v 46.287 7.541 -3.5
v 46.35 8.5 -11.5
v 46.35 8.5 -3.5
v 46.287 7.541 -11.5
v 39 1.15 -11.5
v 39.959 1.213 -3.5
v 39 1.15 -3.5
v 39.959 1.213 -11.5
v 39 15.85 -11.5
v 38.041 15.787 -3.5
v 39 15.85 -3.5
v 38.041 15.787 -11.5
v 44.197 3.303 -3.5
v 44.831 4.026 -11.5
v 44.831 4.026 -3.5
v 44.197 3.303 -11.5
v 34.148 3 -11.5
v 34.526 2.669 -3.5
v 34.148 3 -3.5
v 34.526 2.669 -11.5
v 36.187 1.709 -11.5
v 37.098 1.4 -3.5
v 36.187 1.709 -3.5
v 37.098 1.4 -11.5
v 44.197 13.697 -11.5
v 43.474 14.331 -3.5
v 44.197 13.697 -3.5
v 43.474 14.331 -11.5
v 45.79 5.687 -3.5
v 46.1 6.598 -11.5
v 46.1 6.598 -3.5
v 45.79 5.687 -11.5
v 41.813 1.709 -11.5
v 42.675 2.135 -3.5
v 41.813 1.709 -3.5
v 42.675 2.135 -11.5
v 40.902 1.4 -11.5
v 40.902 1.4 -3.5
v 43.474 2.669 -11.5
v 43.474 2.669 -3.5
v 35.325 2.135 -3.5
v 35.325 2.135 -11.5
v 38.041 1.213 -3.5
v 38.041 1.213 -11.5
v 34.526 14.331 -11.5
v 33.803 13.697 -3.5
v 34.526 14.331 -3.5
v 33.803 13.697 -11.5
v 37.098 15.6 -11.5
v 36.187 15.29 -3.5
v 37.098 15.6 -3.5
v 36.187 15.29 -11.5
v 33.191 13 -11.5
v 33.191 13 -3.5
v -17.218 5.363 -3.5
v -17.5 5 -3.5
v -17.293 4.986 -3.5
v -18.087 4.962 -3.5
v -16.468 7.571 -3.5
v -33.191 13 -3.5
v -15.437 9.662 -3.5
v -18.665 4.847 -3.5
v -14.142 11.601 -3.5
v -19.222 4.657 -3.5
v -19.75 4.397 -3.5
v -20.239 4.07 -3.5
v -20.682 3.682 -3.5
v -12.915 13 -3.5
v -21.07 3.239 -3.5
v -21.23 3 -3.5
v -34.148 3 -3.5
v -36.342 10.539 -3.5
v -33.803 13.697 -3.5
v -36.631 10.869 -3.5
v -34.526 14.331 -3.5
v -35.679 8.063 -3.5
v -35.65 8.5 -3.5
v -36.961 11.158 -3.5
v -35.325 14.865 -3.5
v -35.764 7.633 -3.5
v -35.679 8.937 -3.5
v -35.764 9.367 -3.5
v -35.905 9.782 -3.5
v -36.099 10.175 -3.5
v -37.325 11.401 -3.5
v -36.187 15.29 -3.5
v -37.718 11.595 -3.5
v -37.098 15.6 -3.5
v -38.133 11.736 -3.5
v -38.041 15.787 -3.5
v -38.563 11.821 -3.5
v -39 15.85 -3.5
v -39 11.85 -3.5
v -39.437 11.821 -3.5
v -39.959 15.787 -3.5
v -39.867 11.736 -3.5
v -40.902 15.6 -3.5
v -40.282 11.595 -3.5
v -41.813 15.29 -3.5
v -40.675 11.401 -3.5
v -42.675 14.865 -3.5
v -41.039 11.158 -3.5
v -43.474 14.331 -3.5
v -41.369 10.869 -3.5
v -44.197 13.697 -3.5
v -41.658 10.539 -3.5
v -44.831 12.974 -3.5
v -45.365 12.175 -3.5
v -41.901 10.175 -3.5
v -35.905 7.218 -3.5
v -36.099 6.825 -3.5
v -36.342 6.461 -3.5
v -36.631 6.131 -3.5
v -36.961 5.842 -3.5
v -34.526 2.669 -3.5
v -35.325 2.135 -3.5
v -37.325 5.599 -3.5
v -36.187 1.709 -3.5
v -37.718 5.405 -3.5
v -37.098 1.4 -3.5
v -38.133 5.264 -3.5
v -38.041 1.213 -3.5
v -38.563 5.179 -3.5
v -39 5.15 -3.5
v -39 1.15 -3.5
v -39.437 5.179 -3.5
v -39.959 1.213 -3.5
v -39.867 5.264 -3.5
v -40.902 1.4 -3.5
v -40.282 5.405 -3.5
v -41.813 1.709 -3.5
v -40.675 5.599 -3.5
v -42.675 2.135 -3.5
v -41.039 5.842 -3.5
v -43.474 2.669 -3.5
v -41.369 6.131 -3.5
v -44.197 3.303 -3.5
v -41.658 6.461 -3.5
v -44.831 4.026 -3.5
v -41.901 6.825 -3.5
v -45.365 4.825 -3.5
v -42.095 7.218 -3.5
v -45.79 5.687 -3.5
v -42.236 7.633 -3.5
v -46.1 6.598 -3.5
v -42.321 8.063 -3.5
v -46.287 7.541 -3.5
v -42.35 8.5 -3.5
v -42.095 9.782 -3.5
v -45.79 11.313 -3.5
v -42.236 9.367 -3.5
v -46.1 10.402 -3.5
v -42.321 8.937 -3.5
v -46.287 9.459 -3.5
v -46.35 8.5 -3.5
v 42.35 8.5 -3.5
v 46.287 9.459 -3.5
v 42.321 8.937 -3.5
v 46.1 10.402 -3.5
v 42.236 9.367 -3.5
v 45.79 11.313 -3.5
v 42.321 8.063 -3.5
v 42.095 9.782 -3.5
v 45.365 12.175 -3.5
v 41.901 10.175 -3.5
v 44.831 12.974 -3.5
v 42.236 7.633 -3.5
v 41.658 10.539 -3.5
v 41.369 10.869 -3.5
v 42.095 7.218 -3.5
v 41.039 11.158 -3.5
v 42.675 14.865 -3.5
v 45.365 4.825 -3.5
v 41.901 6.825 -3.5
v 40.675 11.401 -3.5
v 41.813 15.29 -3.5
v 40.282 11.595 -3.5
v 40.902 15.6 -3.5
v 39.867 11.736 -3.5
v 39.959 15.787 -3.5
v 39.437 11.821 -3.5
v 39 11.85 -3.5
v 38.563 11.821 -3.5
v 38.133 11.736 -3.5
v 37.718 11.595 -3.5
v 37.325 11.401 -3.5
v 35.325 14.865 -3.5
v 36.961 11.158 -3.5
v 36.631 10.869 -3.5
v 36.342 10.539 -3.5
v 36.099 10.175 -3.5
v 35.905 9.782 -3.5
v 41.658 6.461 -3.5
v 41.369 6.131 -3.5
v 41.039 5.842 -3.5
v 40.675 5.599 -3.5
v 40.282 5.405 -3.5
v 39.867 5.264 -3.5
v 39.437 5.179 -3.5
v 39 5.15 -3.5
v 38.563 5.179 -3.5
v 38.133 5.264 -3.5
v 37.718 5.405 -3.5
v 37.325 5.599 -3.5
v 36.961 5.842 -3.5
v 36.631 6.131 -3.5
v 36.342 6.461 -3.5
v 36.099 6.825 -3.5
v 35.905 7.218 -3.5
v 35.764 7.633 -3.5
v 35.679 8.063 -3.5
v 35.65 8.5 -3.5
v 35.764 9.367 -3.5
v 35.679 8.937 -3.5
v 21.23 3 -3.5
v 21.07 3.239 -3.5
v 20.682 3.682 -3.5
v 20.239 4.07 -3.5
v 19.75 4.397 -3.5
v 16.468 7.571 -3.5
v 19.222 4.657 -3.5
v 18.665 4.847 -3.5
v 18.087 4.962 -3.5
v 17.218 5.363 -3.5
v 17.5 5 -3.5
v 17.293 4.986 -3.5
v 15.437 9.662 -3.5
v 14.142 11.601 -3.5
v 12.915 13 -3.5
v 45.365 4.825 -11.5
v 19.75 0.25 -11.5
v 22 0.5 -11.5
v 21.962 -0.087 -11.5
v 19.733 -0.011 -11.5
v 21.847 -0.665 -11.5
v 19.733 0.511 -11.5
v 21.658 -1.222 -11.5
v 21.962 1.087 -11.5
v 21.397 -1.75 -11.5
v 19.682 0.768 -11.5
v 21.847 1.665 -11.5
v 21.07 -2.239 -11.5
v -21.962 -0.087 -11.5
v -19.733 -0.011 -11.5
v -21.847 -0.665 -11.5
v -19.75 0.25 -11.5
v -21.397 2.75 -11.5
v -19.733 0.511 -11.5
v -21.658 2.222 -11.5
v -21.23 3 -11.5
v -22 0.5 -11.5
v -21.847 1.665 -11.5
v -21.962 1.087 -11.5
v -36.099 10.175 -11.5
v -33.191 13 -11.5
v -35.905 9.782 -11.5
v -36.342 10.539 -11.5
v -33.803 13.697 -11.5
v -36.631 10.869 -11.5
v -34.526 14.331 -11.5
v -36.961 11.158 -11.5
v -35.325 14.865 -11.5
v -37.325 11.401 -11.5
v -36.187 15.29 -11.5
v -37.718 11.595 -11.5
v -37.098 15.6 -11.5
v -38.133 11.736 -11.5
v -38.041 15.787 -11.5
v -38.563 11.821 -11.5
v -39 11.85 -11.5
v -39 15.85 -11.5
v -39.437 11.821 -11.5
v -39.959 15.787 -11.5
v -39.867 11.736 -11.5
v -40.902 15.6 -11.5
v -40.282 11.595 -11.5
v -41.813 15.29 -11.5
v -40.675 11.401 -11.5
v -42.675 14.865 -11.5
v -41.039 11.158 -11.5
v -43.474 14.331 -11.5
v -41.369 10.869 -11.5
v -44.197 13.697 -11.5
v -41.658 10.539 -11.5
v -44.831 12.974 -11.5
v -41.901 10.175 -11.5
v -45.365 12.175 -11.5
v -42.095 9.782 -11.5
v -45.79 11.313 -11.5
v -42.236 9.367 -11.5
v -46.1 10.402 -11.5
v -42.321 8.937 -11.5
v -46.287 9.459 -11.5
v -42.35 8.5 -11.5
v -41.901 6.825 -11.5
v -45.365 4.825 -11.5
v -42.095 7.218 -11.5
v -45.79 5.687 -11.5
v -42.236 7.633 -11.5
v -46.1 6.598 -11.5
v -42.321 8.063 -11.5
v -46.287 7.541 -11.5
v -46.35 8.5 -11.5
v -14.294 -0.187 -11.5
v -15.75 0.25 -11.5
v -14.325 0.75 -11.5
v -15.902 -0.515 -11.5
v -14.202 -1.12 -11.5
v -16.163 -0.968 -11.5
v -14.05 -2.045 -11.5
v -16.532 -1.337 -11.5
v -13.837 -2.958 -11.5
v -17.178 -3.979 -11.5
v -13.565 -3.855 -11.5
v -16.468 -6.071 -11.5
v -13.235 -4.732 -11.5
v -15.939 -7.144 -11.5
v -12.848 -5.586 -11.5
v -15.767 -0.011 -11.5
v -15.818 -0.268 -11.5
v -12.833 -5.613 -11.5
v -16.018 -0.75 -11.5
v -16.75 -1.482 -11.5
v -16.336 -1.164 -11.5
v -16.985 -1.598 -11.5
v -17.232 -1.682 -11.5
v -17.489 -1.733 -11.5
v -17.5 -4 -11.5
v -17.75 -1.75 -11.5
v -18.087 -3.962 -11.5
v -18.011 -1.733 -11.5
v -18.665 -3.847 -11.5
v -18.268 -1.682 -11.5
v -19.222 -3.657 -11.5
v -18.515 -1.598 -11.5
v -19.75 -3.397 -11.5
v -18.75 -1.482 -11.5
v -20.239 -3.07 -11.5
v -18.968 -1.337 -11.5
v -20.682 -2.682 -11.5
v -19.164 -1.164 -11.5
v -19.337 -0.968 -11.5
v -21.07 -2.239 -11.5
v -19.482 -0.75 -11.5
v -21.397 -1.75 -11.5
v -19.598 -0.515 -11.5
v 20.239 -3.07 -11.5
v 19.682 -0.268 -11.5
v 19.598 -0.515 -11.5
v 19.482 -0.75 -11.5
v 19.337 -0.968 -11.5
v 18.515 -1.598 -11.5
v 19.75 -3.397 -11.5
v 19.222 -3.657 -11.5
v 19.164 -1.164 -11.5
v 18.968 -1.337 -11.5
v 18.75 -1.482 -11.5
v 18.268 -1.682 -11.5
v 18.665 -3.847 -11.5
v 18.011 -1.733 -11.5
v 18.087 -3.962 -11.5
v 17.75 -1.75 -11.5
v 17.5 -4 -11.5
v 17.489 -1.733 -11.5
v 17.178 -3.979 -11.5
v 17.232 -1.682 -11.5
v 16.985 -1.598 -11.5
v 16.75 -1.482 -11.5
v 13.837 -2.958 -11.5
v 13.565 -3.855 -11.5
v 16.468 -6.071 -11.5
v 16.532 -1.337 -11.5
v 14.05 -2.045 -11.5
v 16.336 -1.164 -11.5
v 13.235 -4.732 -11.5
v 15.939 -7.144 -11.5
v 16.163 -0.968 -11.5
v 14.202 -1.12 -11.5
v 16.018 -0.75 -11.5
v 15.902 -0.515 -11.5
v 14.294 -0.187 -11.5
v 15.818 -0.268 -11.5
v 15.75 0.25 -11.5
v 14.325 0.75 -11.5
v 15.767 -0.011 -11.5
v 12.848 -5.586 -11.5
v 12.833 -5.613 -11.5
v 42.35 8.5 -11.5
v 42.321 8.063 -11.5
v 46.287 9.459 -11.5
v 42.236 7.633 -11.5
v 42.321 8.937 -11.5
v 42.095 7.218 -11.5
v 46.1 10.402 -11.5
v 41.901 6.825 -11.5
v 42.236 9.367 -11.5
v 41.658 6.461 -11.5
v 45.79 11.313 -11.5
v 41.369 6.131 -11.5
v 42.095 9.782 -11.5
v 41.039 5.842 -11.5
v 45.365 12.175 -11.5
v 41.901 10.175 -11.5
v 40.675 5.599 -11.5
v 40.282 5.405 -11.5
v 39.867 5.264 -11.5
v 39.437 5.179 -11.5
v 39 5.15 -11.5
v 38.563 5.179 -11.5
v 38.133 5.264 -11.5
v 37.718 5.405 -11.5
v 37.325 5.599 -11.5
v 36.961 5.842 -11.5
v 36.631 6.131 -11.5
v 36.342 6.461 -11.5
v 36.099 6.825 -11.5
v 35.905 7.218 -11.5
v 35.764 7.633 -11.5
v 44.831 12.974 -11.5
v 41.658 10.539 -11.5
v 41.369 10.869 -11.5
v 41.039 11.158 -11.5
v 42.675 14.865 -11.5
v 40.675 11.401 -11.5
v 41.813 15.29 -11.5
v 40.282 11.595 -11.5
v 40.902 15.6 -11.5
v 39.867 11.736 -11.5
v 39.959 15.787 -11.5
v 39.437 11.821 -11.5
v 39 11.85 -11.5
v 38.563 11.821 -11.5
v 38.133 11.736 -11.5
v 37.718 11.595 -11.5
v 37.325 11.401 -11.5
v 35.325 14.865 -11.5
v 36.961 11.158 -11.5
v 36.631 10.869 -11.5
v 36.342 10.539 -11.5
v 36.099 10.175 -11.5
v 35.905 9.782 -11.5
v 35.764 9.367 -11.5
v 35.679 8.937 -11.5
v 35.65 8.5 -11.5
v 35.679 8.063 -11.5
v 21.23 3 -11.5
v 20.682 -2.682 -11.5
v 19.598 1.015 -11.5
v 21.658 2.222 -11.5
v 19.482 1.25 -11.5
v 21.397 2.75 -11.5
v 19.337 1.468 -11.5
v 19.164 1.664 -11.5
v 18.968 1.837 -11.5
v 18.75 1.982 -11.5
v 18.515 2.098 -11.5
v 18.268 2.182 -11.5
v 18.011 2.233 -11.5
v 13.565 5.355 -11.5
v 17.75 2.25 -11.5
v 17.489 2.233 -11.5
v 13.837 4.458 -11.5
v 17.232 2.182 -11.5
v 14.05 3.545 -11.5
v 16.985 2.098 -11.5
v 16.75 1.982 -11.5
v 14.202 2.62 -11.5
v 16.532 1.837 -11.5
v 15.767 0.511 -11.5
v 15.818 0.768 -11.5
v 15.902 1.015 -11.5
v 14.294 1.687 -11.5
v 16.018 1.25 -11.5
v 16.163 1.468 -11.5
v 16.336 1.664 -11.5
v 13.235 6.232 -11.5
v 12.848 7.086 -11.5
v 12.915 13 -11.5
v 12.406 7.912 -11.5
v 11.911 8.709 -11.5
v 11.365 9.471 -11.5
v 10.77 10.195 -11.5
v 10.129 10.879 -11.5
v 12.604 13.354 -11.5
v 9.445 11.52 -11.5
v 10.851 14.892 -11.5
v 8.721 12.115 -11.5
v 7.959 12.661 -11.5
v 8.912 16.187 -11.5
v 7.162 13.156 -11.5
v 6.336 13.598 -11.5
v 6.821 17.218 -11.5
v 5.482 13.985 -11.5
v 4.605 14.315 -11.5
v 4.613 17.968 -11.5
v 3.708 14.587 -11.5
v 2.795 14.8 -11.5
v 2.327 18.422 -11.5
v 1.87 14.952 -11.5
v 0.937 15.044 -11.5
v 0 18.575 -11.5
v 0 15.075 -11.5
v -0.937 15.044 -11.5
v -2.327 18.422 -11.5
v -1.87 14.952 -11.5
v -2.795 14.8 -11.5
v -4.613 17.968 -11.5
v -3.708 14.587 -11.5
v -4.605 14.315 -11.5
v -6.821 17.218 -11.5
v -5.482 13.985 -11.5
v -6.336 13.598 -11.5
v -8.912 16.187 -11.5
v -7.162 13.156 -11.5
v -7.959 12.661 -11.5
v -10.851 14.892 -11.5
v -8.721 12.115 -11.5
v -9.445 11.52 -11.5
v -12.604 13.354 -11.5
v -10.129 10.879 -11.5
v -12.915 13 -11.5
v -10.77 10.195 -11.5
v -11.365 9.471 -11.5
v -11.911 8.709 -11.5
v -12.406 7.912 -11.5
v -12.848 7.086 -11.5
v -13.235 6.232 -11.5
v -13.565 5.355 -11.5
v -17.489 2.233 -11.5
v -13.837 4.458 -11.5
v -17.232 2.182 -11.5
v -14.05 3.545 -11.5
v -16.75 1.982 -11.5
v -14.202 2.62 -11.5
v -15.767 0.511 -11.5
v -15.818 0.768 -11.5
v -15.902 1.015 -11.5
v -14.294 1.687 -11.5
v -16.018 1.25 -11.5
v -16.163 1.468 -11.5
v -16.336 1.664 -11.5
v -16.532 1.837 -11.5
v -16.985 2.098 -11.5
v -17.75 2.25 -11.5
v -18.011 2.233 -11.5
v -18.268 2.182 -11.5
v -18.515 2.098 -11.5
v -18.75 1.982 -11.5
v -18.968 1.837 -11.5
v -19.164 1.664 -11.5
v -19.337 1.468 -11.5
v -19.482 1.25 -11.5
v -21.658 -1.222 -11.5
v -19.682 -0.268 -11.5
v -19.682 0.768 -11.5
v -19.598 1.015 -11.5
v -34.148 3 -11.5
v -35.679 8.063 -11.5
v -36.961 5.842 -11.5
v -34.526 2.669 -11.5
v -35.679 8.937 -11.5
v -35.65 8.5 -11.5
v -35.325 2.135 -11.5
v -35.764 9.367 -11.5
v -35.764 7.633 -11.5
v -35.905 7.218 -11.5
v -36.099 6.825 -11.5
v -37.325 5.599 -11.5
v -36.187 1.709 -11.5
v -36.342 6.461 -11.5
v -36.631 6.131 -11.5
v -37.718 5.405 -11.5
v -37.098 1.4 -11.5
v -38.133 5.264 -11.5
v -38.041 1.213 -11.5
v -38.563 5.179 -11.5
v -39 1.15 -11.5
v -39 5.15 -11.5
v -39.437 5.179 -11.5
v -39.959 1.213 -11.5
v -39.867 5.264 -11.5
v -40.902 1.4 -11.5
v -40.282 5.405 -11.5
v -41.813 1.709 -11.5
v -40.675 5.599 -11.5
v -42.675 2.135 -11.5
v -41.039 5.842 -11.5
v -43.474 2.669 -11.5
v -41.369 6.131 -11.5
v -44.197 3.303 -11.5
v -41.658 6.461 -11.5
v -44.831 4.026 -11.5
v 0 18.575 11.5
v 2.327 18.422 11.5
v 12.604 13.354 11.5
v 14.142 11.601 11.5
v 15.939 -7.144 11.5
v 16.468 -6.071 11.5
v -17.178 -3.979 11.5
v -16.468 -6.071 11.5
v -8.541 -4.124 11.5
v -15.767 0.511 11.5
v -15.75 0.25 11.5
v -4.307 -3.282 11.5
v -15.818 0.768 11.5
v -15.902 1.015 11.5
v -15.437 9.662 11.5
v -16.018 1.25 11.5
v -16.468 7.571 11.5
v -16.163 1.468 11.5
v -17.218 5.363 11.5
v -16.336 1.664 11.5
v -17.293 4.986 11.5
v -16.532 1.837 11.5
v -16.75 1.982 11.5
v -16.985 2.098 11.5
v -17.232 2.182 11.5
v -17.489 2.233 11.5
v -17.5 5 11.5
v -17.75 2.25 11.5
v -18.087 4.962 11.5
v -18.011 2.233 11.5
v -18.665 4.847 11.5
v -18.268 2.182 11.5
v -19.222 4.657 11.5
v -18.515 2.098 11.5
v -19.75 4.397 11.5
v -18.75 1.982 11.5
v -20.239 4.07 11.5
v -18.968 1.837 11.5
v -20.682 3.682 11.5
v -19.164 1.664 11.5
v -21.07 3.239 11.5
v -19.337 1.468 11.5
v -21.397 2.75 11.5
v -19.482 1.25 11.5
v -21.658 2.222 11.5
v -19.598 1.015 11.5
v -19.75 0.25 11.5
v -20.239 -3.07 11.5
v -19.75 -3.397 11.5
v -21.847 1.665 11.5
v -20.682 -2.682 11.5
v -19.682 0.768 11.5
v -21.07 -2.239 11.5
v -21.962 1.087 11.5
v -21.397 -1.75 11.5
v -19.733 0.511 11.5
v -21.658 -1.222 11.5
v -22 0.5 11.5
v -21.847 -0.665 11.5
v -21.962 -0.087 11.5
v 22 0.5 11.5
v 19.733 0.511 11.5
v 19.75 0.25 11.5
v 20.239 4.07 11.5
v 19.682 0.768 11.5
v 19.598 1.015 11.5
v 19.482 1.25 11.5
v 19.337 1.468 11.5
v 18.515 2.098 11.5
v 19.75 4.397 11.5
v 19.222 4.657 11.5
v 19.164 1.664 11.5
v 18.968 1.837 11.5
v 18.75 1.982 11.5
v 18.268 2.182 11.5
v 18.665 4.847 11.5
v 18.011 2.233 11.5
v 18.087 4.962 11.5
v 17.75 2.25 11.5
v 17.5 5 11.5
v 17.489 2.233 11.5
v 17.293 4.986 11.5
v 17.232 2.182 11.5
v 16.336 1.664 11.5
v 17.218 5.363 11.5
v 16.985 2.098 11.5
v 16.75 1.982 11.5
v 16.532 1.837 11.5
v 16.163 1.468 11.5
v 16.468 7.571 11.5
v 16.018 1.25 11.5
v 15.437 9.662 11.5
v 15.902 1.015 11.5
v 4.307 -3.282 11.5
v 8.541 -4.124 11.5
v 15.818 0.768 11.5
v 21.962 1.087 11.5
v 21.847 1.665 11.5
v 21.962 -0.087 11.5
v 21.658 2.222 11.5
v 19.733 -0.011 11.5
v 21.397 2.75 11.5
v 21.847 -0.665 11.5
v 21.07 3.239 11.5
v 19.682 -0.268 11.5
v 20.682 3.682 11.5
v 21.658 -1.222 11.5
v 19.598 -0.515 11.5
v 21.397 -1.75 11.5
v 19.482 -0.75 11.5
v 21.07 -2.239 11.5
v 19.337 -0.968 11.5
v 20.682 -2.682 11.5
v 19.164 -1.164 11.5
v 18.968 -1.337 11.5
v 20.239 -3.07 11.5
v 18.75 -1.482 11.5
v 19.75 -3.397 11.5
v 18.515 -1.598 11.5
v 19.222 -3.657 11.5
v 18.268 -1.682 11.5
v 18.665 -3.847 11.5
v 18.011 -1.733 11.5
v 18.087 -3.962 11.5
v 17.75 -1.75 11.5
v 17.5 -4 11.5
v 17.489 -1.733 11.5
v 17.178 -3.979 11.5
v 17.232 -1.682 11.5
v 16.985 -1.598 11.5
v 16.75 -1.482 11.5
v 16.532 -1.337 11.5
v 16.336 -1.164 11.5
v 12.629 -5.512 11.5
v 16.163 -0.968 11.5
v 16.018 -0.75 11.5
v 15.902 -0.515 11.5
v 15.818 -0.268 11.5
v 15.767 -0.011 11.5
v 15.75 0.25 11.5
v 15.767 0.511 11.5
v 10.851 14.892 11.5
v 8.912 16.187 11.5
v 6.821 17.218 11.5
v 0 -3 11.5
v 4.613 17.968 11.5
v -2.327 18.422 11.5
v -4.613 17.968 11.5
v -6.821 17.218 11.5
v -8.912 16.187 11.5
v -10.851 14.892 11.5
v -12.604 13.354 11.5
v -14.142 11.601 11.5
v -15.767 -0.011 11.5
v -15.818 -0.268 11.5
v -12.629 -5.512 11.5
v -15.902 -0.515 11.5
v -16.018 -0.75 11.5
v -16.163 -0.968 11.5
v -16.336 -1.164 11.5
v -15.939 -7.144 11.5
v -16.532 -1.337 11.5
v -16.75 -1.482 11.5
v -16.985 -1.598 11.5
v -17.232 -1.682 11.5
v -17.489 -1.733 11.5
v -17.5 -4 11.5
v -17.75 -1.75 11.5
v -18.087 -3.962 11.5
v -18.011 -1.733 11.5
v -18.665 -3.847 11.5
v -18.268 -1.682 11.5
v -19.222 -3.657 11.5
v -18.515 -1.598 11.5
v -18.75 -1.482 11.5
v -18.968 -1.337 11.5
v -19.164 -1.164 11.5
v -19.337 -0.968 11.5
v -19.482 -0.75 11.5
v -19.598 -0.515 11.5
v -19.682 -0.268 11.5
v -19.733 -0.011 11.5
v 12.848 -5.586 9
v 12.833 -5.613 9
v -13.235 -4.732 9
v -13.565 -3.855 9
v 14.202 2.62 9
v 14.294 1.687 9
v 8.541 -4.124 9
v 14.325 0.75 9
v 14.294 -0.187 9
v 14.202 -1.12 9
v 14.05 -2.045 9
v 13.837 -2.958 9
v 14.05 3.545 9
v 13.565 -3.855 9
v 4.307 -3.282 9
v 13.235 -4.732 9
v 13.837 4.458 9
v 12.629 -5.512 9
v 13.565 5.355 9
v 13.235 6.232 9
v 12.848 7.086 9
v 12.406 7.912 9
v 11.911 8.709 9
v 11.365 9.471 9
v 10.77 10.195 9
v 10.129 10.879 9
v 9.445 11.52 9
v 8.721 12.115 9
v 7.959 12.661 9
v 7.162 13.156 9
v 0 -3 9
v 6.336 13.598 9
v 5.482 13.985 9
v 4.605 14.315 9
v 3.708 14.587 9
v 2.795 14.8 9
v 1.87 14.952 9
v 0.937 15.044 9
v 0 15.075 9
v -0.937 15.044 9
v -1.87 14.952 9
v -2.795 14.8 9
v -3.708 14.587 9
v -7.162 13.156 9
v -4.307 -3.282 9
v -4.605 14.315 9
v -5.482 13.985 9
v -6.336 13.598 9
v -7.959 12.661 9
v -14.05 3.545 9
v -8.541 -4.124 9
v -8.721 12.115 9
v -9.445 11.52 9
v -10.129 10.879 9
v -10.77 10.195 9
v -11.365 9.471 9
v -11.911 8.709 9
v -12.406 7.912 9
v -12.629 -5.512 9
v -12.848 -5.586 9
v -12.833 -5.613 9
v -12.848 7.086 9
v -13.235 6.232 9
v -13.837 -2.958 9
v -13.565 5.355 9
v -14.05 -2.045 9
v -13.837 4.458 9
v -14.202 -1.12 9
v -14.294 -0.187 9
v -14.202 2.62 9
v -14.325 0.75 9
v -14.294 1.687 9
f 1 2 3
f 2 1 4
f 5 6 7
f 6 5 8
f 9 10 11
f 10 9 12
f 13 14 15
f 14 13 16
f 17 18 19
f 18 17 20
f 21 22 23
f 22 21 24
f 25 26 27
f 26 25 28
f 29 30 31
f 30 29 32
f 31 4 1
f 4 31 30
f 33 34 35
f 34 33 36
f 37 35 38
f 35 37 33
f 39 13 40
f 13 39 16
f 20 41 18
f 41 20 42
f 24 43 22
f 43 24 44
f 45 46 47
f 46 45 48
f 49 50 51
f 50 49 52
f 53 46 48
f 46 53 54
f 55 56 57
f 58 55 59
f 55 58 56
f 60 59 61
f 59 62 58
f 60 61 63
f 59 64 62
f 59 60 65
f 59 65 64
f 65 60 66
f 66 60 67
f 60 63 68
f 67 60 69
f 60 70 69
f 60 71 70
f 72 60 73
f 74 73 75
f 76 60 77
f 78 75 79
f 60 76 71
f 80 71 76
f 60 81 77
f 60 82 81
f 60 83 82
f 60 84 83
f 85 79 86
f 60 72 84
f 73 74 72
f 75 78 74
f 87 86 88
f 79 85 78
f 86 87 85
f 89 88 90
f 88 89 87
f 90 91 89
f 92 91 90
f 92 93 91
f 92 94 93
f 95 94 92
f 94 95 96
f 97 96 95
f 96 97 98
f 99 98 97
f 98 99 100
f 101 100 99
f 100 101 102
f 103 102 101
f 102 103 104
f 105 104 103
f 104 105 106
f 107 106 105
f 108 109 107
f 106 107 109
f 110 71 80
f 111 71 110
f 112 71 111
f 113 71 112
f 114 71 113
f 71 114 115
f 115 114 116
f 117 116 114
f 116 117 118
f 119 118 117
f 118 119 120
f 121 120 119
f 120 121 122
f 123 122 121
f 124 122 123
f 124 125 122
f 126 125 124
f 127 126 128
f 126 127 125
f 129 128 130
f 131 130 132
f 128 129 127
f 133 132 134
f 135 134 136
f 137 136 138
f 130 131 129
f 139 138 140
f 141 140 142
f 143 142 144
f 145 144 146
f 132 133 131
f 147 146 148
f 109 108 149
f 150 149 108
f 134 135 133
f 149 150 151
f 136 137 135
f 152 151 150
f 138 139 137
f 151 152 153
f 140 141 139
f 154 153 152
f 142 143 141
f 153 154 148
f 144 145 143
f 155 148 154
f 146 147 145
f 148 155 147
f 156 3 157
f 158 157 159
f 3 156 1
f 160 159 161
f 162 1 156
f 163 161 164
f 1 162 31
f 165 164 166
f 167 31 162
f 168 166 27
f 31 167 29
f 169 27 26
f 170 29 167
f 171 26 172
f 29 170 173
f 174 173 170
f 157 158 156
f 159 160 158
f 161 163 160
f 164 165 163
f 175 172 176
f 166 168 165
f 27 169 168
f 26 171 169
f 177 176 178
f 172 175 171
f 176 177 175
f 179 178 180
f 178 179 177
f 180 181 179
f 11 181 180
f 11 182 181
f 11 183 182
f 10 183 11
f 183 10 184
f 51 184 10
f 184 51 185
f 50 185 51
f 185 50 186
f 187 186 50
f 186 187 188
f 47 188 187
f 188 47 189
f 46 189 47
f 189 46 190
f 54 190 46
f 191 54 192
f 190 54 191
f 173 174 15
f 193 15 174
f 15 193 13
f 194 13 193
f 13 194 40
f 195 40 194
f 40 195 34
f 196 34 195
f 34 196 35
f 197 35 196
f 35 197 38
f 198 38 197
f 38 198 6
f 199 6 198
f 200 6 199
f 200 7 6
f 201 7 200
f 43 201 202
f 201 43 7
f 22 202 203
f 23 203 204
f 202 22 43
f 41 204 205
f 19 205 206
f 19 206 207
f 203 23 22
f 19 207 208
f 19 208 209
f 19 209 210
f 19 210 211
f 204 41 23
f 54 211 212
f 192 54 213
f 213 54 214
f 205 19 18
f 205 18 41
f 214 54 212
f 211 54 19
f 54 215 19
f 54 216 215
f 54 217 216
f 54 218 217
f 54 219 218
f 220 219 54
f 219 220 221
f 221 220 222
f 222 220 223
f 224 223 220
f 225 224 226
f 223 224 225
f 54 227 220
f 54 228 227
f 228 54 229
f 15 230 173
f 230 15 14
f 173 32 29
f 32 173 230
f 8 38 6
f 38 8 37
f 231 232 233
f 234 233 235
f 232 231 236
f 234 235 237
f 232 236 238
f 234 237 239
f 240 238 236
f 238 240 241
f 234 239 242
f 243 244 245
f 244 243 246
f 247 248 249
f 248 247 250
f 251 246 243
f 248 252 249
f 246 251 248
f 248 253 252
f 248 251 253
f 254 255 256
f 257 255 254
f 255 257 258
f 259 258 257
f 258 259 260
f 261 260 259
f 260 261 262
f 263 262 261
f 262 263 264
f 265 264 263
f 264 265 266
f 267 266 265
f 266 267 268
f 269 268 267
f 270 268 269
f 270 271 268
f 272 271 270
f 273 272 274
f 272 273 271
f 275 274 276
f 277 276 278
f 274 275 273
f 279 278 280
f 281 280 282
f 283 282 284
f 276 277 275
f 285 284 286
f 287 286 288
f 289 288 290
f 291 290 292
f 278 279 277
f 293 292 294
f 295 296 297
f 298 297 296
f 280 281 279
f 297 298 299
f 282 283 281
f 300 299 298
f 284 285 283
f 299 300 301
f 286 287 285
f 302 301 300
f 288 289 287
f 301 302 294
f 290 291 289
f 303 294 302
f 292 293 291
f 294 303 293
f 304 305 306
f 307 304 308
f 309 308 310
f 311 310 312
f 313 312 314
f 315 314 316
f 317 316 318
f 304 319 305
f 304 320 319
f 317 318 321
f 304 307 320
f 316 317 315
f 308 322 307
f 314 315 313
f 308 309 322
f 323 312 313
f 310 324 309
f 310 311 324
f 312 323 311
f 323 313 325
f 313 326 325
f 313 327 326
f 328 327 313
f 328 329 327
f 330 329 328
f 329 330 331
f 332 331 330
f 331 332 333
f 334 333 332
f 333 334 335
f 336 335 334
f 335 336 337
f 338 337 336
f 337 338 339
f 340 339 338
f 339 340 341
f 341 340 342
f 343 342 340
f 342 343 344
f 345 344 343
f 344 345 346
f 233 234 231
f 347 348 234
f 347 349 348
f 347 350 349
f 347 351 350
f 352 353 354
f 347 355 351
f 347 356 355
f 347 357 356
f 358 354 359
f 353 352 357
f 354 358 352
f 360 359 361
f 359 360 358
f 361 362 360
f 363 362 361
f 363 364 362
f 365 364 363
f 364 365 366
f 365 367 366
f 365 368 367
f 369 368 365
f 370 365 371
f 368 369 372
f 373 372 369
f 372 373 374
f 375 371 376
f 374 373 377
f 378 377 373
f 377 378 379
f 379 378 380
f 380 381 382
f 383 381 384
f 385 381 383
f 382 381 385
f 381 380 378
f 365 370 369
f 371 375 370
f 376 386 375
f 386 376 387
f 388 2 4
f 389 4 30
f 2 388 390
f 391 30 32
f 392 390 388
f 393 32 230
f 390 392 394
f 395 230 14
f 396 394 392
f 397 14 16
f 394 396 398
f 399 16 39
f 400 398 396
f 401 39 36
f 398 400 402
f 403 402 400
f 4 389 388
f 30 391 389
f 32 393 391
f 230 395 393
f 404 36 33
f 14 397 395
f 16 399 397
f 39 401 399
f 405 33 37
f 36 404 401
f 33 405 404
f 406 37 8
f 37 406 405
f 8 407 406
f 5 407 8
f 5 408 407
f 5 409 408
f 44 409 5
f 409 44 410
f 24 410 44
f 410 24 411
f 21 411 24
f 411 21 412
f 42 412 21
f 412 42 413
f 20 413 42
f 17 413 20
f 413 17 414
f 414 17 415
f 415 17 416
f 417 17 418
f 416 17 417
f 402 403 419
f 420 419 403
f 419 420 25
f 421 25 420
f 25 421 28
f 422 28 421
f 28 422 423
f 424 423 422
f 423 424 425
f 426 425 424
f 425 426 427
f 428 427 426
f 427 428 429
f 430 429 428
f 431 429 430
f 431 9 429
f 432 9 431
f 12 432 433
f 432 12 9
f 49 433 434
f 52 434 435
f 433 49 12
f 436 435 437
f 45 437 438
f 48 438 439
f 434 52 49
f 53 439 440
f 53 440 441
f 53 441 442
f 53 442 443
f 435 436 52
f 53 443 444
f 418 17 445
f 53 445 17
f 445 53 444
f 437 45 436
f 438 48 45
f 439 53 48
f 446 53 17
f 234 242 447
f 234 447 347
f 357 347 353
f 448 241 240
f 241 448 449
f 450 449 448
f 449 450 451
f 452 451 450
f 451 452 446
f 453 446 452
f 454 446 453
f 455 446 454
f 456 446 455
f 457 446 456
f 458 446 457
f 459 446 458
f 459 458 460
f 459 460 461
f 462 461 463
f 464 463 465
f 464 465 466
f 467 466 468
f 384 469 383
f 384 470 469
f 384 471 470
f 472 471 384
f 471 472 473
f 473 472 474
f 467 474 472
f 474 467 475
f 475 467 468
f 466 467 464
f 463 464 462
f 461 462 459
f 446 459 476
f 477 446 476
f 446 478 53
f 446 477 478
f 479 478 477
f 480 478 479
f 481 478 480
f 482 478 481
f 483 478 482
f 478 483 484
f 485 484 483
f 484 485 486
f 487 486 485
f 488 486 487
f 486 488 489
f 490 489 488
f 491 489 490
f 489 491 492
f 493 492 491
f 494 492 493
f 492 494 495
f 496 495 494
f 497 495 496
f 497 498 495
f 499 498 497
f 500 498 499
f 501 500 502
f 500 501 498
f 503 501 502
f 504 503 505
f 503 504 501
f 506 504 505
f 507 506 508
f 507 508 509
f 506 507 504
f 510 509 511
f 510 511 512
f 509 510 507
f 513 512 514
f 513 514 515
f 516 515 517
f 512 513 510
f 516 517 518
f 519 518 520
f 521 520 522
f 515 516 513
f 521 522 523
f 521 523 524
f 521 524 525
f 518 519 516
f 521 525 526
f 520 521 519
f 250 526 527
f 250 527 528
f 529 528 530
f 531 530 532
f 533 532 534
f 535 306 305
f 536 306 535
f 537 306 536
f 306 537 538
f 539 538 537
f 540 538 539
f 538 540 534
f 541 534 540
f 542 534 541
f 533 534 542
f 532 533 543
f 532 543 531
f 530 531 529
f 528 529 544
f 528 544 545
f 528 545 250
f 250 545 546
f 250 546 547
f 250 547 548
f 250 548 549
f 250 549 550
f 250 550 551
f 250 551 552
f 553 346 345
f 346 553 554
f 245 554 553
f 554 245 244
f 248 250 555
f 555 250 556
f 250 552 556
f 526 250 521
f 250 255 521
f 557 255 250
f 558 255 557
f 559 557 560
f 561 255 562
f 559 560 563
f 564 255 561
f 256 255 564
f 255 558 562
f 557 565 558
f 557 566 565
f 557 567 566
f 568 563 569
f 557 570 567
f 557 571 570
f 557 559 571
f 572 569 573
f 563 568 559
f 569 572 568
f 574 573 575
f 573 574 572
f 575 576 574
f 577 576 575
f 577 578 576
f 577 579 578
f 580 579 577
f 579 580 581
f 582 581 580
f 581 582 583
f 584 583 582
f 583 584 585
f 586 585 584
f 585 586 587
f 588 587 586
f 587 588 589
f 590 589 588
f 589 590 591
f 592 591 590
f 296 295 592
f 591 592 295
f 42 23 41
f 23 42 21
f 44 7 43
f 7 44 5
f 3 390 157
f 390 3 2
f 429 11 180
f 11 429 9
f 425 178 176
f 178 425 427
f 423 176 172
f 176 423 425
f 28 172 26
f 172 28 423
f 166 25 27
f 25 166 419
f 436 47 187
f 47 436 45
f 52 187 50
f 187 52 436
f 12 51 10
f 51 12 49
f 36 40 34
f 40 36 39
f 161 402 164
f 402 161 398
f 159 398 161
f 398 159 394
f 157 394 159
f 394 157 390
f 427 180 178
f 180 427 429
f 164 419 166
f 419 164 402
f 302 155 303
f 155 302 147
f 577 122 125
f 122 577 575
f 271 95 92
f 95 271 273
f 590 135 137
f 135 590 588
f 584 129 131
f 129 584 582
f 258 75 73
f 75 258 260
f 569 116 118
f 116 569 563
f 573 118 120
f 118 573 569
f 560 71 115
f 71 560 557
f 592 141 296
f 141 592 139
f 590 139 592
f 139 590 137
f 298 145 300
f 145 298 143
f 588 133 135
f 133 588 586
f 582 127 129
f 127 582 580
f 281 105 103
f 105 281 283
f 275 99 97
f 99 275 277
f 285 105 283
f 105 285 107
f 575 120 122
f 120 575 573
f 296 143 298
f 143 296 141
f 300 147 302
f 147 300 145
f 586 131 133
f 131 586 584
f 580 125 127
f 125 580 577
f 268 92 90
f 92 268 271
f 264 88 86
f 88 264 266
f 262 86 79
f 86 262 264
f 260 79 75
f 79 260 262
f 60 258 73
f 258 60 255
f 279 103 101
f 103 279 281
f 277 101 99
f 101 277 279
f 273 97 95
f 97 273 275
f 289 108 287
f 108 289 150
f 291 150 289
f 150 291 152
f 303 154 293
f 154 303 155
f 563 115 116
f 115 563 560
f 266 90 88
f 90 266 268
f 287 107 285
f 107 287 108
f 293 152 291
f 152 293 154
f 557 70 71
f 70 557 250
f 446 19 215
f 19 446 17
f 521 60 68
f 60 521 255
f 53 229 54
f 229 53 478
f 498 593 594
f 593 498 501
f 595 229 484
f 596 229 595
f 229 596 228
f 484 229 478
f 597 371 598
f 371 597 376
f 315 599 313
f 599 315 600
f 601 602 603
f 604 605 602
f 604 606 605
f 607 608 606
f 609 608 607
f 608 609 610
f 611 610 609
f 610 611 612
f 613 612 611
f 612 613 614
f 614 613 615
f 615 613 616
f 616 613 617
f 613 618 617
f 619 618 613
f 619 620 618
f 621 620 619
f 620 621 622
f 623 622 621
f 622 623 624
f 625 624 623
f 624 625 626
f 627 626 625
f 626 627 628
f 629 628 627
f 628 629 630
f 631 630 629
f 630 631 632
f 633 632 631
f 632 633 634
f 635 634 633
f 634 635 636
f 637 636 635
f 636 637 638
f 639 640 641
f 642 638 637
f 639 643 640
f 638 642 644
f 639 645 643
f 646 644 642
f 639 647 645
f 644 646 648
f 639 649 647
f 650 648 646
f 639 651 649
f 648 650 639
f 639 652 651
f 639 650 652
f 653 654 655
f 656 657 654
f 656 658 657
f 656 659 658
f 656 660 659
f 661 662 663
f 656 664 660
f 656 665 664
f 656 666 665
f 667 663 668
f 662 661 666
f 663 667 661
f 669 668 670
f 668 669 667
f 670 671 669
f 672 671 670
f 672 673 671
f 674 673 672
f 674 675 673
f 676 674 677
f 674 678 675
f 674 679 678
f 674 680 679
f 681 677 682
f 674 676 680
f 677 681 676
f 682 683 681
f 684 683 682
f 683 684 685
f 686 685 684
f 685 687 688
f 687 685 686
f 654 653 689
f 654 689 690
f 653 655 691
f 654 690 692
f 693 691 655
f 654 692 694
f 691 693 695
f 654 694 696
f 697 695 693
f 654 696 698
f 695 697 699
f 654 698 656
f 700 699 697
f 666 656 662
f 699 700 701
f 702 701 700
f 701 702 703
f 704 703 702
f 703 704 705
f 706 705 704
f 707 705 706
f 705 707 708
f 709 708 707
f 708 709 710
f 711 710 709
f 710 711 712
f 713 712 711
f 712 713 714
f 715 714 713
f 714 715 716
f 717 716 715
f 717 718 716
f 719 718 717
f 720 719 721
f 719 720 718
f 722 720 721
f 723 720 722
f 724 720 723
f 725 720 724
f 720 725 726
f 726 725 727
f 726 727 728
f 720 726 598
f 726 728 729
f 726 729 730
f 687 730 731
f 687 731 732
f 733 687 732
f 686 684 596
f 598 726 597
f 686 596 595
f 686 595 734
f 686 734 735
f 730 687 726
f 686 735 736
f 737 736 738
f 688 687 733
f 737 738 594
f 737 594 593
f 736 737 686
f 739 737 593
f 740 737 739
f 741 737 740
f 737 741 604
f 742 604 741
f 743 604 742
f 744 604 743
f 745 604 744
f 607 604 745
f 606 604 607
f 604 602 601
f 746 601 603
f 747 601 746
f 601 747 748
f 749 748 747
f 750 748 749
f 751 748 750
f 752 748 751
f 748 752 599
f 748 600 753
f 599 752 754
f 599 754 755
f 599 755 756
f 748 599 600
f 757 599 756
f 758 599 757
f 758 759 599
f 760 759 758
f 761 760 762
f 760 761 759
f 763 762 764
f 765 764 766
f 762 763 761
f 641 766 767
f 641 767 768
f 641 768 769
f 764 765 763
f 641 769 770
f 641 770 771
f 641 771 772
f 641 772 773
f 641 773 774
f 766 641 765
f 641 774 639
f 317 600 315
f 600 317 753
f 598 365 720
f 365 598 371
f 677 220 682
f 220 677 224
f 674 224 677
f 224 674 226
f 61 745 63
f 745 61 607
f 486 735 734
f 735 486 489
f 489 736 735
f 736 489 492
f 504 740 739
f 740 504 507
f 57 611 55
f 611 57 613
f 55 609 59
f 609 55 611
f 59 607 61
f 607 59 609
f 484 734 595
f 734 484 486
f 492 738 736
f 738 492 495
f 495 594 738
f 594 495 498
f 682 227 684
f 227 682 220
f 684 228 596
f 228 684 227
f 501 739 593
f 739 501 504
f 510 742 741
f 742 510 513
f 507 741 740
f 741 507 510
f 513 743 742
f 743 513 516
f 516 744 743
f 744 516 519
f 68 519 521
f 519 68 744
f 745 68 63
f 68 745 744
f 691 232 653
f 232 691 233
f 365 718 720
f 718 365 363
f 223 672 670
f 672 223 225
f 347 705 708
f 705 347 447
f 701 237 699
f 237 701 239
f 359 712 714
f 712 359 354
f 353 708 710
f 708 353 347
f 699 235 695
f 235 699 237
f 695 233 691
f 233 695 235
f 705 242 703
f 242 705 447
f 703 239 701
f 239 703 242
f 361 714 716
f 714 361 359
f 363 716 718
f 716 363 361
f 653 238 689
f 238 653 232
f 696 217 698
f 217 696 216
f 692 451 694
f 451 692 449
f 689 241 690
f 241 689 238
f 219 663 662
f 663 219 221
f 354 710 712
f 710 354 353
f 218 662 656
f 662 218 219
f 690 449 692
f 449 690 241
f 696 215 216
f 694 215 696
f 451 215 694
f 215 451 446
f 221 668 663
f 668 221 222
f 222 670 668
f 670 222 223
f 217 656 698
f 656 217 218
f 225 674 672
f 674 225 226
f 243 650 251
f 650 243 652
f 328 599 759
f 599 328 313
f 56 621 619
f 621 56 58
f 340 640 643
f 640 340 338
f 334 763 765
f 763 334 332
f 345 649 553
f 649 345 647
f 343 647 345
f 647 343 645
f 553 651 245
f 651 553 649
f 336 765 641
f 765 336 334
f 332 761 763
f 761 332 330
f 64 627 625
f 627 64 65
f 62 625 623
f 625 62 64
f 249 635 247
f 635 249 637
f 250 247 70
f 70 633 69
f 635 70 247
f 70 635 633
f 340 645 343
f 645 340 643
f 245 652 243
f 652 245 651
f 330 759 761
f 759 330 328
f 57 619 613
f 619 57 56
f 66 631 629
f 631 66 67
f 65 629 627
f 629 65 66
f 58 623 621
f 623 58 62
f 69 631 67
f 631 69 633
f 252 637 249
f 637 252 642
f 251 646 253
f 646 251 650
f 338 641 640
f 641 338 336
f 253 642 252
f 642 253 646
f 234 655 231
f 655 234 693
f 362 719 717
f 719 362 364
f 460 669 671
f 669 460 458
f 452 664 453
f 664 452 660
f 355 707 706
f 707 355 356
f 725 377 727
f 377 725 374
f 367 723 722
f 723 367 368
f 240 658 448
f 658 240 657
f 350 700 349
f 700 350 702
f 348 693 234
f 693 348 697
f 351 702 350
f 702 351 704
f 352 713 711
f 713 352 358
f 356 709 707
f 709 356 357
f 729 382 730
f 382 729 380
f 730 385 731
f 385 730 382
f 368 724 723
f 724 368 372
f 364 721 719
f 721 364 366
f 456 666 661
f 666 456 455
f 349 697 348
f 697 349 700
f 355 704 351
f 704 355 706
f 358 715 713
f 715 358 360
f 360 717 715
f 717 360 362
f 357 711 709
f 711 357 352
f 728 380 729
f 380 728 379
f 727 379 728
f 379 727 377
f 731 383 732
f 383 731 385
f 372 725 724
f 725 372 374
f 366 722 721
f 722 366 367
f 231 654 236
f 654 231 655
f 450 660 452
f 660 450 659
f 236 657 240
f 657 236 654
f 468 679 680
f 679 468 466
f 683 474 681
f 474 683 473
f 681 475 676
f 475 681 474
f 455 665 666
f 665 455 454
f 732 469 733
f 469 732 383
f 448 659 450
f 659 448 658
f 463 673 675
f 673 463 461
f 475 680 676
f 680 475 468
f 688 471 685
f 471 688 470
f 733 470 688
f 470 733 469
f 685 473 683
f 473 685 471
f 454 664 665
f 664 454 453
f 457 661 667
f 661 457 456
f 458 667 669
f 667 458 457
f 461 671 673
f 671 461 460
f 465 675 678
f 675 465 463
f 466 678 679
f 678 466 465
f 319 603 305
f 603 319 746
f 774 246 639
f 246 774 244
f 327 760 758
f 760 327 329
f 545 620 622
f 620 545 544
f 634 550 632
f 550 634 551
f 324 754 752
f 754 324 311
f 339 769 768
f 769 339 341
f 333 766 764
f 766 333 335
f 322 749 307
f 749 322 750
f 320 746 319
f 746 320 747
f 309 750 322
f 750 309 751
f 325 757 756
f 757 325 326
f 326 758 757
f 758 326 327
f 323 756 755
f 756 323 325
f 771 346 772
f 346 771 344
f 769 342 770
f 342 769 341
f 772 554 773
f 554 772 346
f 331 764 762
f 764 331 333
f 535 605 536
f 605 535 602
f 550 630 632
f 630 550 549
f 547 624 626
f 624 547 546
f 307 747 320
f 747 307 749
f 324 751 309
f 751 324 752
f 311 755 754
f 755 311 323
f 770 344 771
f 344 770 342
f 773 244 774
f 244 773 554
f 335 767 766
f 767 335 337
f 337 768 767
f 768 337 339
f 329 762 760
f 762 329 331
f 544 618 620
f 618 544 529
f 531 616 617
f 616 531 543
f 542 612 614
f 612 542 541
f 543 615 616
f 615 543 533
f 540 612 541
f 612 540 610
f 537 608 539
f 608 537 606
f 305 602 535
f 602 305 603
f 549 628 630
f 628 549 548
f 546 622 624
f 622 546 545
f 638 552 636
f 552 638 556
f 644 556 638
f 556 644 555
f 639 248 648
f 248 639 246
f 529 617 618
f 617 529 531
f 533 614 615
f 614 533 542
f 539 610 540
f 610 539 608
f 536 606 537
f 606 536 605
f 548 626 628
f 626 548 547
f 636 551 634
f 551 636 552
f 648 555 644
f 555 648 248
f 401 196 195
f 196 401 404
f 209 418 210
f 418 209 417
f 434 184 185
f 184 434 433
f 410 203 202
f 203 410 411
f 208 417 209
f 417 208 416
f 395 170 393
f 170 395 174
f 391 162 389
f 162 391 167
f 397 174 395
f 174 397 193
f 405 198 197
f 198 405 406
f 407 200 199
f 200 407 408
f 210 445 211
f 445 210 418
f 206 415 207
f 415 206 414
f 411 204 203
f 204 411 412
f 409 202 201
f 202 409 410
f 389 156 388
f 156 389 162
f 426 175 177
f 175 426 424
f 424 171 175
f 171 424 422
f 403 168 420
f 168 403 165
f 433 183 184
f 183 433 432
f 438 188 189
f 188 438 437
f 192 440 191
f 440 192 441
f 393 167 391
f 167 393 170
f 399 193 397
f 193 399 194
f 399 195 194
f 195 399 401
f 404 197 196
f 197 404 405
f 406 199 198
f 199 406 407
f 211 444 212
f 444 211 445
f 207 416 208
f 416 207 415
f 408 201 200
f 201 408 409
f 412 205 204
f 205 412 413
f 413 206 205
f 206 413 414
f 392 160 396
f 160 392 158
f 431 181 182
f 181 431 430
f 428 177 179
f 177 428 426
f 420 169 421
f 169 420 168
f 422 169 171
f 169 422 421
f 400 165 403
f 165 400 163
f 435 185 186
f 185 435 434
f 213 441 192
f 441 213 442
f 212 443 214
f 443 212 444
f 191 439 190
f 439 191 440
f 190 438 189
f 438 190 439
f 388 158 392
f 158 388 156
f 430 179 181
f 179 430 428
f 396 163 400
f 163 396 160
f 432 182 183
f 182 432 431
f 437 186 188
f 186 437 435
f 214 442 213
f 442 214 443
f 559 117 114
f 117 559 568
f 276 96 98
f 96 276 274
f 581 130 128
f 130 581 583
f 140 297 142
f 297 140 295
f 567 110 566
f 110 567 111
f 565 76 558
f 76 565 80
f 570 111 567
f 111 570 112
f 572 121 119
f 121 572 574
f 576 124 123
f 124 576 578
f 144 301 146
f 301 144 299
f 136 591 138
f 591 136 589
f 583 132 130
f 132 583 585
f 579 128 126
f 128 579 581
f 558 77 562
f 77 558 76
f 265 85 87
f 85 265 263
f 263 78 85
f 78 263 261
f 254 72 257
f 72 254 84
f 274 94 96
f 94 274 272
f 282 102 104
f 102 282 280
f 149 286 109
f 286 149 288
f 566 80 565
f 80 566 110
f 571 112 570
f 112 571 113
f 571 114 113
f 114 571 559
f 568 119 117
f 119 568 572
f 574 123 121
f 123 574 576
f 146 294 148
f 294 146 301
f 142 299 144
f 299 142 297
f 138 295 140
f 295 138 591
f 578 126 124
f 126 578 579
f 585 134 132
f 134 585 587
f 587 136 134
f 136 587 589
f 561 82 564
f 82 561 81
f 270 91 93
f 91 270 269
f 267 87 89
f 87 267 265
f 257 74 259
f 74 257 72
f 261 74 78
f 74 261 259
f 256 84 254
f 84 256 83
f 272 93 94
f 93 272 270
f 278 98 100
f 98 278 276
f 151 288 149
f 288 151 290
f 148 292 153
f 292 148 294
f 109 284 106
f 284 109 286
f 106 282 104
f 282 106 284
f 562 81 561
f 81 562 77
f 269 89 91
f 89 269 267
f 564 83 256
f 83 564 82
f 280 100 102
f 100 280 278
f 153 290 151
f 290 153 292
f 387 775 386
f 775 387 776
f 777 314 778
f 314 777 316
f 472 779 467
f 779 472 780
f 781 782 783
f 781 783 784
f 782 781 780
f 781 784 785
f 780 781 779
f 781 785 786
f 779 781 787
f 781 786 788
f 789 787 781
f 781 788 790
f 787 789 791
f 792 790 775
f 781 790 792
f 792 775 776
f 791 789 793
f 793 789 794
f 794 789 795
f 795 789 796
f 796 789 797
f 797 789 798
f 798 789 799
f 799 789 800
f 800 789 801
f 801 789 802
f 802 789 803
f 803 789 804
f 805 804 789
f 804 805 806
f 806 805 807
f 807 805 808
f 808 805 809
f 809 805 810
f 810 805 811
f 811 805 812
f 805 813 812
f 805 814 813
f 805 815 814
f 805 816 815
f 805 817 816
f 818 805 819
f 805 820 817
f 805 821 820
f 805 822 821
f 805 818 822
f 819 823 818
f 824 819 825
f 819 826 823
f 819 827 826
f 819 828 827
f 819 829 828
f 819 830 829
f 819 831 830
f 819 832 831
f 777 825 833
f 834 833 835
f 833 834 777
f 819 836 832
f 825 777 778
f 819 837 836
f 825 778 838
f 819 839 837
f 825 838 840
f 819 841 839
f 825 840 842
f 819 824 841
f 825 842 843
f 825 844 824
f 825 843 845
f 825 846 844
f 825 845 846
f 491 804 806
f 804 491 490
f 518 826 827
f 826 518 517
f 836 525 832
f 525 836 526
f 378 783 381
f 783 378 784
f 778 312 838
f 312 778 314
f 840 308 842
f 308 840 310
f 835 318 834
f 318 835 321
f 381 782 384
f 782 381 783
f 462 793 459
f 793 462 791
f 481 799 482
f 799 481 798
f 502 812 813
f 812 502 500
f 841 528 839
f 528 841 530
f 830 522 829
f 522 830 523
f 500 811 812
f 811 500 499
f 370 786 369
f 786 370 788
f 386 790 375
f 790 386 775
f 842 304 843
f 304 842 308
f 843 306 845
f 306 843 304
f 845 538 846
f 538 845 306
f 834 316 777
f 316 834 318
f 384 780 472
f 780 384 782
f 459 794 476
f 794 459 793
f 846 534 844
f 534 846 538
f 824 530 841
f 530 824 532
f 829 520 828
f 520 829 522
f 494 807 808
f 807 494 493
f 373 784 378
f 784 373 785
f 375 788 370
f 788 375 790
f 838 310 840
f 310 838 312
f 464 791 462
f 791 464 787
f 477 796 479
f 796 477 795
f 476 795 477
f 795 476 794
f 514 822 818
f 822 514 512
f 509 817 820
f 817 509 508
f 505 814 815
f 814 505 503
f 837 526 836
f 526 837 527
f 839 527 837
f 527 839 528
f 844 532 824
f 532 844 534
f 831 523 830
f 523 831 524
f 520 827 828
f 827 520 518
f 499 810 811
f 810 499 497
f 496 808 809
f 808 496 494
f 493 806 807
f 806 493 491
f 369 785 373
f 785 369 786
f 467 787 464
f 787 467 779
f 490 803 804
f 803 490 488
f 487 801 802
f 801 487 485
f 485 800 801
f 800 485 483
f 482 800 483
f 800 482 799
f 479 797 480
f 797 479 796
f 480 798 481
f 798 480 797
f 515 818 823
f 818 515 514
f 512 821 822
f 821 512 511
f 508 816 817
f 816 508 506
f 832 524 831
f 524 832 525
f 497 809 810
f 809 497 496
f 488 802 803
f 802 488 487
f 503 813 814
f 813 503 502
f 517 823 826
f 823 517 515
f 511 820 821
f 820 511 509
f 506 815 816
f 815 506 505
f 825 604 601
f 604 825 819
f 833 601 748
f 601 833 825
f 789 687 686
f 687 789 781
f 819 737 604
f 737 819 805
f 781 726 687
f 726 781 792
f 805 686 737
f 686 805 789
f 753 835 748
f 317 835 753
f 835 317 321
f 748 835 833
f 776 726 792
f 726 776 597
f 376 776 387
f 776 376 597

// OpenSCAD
// Dispenser driver - holder ST28 motor

    DiaFix=1.9;
   DiaTwo=2.4; // fixing  wire with hook
   DiaTye=3.8;
   DiaFour= 4.5;  // 
   DiaFive=5.5;   //
   DiaM5 = 5.6; 
   DiaM6 = 6.7; // glider, ++
                
    Xc=4.5;   //  pen midpoint position
    
    VersionWithTye = 1;
    
color("lime")    

rotate([180,0,0])
    
difference()
{ 
  union()
  {     
   
     
      // side gliders :
      
          translate([39,-8.5,7.5])
       cylinder(h=8 ,d=DiaM6+8 ,center=true,$fn=48);  //
            
          translate([-39,-8.5,7.5])
       cylinder(h=8 ,d=DiaM6+8 ,center=true,$fn=48);  //
            
      // connect side gliders:
                       
           translate([0,-8.0,7.5])
      cube([86,10,8],center=true); //46
     
  
  // connect dorsal:
 
   // FIX ROOM ROTATE STEPPER   
      
   //  stepper   
  
     translate([0,-0.75,0]) // Y -27
      cylinder(h=23.0,d=35.65,center=true,$fn=48);  //  25
        
     
   //  plunger fix   room  
  
     
    // ST fix side cylinders
      // KEEP THEM LONG !
       translate([17.5,-0.5,0]) //
      cylinder(h=23,d=9,center=true,$fn=48);  //  was 33.4
   
 
           translate([-17.5,-0.5,0]) //
      cylinder(h=23,d=9,center=true,$fn=48);  //  was 33.4   
            
  }      

  // end union
    
    // fix rotator motor :
 
       translate([17.75,-0.25,0]) //10.25
      cylinder(h=30,d=4,center=true,$fn=48);  // 4 for :3
   
 
           translate([-17.75,-0.25,0]) 
      cylinder(h=30,d=4,center=true,$fn=48);  //  4 for M3


     // check center pulley:
  /*
           translate([0,-8.5,0]) 
      cylinder(h=30,d=3,center=true,$fn=48);  //  4 for M3
*/

   // side gliders :
      
          translate([39,-8.5,0])
       cylinder(h=30 ,d=DiaM6 ,center=true,$fn=48);  //
            
          translate([-39,-8.5,0])
       cylinder(h=30 ,d=DiaM6 ,center=true,$fn=48);  //
   
      
       //  NEW  
       
       // ROTATOR ST room:     
     
     translate([0,-0.75,2.5])  // 1.5 = 2.5 mm bottom 
       cylinder(h=23,d=28.65,center=true,$fn=96);   // 20
        
    ///  entry ST
      
   translate([0,36,-4])  //  = 2 mm bottom -39+13.5 = 
       cylinder(h=34,d=66,center=true,$fn=48);   //  
   
  }
   
   


         
         
